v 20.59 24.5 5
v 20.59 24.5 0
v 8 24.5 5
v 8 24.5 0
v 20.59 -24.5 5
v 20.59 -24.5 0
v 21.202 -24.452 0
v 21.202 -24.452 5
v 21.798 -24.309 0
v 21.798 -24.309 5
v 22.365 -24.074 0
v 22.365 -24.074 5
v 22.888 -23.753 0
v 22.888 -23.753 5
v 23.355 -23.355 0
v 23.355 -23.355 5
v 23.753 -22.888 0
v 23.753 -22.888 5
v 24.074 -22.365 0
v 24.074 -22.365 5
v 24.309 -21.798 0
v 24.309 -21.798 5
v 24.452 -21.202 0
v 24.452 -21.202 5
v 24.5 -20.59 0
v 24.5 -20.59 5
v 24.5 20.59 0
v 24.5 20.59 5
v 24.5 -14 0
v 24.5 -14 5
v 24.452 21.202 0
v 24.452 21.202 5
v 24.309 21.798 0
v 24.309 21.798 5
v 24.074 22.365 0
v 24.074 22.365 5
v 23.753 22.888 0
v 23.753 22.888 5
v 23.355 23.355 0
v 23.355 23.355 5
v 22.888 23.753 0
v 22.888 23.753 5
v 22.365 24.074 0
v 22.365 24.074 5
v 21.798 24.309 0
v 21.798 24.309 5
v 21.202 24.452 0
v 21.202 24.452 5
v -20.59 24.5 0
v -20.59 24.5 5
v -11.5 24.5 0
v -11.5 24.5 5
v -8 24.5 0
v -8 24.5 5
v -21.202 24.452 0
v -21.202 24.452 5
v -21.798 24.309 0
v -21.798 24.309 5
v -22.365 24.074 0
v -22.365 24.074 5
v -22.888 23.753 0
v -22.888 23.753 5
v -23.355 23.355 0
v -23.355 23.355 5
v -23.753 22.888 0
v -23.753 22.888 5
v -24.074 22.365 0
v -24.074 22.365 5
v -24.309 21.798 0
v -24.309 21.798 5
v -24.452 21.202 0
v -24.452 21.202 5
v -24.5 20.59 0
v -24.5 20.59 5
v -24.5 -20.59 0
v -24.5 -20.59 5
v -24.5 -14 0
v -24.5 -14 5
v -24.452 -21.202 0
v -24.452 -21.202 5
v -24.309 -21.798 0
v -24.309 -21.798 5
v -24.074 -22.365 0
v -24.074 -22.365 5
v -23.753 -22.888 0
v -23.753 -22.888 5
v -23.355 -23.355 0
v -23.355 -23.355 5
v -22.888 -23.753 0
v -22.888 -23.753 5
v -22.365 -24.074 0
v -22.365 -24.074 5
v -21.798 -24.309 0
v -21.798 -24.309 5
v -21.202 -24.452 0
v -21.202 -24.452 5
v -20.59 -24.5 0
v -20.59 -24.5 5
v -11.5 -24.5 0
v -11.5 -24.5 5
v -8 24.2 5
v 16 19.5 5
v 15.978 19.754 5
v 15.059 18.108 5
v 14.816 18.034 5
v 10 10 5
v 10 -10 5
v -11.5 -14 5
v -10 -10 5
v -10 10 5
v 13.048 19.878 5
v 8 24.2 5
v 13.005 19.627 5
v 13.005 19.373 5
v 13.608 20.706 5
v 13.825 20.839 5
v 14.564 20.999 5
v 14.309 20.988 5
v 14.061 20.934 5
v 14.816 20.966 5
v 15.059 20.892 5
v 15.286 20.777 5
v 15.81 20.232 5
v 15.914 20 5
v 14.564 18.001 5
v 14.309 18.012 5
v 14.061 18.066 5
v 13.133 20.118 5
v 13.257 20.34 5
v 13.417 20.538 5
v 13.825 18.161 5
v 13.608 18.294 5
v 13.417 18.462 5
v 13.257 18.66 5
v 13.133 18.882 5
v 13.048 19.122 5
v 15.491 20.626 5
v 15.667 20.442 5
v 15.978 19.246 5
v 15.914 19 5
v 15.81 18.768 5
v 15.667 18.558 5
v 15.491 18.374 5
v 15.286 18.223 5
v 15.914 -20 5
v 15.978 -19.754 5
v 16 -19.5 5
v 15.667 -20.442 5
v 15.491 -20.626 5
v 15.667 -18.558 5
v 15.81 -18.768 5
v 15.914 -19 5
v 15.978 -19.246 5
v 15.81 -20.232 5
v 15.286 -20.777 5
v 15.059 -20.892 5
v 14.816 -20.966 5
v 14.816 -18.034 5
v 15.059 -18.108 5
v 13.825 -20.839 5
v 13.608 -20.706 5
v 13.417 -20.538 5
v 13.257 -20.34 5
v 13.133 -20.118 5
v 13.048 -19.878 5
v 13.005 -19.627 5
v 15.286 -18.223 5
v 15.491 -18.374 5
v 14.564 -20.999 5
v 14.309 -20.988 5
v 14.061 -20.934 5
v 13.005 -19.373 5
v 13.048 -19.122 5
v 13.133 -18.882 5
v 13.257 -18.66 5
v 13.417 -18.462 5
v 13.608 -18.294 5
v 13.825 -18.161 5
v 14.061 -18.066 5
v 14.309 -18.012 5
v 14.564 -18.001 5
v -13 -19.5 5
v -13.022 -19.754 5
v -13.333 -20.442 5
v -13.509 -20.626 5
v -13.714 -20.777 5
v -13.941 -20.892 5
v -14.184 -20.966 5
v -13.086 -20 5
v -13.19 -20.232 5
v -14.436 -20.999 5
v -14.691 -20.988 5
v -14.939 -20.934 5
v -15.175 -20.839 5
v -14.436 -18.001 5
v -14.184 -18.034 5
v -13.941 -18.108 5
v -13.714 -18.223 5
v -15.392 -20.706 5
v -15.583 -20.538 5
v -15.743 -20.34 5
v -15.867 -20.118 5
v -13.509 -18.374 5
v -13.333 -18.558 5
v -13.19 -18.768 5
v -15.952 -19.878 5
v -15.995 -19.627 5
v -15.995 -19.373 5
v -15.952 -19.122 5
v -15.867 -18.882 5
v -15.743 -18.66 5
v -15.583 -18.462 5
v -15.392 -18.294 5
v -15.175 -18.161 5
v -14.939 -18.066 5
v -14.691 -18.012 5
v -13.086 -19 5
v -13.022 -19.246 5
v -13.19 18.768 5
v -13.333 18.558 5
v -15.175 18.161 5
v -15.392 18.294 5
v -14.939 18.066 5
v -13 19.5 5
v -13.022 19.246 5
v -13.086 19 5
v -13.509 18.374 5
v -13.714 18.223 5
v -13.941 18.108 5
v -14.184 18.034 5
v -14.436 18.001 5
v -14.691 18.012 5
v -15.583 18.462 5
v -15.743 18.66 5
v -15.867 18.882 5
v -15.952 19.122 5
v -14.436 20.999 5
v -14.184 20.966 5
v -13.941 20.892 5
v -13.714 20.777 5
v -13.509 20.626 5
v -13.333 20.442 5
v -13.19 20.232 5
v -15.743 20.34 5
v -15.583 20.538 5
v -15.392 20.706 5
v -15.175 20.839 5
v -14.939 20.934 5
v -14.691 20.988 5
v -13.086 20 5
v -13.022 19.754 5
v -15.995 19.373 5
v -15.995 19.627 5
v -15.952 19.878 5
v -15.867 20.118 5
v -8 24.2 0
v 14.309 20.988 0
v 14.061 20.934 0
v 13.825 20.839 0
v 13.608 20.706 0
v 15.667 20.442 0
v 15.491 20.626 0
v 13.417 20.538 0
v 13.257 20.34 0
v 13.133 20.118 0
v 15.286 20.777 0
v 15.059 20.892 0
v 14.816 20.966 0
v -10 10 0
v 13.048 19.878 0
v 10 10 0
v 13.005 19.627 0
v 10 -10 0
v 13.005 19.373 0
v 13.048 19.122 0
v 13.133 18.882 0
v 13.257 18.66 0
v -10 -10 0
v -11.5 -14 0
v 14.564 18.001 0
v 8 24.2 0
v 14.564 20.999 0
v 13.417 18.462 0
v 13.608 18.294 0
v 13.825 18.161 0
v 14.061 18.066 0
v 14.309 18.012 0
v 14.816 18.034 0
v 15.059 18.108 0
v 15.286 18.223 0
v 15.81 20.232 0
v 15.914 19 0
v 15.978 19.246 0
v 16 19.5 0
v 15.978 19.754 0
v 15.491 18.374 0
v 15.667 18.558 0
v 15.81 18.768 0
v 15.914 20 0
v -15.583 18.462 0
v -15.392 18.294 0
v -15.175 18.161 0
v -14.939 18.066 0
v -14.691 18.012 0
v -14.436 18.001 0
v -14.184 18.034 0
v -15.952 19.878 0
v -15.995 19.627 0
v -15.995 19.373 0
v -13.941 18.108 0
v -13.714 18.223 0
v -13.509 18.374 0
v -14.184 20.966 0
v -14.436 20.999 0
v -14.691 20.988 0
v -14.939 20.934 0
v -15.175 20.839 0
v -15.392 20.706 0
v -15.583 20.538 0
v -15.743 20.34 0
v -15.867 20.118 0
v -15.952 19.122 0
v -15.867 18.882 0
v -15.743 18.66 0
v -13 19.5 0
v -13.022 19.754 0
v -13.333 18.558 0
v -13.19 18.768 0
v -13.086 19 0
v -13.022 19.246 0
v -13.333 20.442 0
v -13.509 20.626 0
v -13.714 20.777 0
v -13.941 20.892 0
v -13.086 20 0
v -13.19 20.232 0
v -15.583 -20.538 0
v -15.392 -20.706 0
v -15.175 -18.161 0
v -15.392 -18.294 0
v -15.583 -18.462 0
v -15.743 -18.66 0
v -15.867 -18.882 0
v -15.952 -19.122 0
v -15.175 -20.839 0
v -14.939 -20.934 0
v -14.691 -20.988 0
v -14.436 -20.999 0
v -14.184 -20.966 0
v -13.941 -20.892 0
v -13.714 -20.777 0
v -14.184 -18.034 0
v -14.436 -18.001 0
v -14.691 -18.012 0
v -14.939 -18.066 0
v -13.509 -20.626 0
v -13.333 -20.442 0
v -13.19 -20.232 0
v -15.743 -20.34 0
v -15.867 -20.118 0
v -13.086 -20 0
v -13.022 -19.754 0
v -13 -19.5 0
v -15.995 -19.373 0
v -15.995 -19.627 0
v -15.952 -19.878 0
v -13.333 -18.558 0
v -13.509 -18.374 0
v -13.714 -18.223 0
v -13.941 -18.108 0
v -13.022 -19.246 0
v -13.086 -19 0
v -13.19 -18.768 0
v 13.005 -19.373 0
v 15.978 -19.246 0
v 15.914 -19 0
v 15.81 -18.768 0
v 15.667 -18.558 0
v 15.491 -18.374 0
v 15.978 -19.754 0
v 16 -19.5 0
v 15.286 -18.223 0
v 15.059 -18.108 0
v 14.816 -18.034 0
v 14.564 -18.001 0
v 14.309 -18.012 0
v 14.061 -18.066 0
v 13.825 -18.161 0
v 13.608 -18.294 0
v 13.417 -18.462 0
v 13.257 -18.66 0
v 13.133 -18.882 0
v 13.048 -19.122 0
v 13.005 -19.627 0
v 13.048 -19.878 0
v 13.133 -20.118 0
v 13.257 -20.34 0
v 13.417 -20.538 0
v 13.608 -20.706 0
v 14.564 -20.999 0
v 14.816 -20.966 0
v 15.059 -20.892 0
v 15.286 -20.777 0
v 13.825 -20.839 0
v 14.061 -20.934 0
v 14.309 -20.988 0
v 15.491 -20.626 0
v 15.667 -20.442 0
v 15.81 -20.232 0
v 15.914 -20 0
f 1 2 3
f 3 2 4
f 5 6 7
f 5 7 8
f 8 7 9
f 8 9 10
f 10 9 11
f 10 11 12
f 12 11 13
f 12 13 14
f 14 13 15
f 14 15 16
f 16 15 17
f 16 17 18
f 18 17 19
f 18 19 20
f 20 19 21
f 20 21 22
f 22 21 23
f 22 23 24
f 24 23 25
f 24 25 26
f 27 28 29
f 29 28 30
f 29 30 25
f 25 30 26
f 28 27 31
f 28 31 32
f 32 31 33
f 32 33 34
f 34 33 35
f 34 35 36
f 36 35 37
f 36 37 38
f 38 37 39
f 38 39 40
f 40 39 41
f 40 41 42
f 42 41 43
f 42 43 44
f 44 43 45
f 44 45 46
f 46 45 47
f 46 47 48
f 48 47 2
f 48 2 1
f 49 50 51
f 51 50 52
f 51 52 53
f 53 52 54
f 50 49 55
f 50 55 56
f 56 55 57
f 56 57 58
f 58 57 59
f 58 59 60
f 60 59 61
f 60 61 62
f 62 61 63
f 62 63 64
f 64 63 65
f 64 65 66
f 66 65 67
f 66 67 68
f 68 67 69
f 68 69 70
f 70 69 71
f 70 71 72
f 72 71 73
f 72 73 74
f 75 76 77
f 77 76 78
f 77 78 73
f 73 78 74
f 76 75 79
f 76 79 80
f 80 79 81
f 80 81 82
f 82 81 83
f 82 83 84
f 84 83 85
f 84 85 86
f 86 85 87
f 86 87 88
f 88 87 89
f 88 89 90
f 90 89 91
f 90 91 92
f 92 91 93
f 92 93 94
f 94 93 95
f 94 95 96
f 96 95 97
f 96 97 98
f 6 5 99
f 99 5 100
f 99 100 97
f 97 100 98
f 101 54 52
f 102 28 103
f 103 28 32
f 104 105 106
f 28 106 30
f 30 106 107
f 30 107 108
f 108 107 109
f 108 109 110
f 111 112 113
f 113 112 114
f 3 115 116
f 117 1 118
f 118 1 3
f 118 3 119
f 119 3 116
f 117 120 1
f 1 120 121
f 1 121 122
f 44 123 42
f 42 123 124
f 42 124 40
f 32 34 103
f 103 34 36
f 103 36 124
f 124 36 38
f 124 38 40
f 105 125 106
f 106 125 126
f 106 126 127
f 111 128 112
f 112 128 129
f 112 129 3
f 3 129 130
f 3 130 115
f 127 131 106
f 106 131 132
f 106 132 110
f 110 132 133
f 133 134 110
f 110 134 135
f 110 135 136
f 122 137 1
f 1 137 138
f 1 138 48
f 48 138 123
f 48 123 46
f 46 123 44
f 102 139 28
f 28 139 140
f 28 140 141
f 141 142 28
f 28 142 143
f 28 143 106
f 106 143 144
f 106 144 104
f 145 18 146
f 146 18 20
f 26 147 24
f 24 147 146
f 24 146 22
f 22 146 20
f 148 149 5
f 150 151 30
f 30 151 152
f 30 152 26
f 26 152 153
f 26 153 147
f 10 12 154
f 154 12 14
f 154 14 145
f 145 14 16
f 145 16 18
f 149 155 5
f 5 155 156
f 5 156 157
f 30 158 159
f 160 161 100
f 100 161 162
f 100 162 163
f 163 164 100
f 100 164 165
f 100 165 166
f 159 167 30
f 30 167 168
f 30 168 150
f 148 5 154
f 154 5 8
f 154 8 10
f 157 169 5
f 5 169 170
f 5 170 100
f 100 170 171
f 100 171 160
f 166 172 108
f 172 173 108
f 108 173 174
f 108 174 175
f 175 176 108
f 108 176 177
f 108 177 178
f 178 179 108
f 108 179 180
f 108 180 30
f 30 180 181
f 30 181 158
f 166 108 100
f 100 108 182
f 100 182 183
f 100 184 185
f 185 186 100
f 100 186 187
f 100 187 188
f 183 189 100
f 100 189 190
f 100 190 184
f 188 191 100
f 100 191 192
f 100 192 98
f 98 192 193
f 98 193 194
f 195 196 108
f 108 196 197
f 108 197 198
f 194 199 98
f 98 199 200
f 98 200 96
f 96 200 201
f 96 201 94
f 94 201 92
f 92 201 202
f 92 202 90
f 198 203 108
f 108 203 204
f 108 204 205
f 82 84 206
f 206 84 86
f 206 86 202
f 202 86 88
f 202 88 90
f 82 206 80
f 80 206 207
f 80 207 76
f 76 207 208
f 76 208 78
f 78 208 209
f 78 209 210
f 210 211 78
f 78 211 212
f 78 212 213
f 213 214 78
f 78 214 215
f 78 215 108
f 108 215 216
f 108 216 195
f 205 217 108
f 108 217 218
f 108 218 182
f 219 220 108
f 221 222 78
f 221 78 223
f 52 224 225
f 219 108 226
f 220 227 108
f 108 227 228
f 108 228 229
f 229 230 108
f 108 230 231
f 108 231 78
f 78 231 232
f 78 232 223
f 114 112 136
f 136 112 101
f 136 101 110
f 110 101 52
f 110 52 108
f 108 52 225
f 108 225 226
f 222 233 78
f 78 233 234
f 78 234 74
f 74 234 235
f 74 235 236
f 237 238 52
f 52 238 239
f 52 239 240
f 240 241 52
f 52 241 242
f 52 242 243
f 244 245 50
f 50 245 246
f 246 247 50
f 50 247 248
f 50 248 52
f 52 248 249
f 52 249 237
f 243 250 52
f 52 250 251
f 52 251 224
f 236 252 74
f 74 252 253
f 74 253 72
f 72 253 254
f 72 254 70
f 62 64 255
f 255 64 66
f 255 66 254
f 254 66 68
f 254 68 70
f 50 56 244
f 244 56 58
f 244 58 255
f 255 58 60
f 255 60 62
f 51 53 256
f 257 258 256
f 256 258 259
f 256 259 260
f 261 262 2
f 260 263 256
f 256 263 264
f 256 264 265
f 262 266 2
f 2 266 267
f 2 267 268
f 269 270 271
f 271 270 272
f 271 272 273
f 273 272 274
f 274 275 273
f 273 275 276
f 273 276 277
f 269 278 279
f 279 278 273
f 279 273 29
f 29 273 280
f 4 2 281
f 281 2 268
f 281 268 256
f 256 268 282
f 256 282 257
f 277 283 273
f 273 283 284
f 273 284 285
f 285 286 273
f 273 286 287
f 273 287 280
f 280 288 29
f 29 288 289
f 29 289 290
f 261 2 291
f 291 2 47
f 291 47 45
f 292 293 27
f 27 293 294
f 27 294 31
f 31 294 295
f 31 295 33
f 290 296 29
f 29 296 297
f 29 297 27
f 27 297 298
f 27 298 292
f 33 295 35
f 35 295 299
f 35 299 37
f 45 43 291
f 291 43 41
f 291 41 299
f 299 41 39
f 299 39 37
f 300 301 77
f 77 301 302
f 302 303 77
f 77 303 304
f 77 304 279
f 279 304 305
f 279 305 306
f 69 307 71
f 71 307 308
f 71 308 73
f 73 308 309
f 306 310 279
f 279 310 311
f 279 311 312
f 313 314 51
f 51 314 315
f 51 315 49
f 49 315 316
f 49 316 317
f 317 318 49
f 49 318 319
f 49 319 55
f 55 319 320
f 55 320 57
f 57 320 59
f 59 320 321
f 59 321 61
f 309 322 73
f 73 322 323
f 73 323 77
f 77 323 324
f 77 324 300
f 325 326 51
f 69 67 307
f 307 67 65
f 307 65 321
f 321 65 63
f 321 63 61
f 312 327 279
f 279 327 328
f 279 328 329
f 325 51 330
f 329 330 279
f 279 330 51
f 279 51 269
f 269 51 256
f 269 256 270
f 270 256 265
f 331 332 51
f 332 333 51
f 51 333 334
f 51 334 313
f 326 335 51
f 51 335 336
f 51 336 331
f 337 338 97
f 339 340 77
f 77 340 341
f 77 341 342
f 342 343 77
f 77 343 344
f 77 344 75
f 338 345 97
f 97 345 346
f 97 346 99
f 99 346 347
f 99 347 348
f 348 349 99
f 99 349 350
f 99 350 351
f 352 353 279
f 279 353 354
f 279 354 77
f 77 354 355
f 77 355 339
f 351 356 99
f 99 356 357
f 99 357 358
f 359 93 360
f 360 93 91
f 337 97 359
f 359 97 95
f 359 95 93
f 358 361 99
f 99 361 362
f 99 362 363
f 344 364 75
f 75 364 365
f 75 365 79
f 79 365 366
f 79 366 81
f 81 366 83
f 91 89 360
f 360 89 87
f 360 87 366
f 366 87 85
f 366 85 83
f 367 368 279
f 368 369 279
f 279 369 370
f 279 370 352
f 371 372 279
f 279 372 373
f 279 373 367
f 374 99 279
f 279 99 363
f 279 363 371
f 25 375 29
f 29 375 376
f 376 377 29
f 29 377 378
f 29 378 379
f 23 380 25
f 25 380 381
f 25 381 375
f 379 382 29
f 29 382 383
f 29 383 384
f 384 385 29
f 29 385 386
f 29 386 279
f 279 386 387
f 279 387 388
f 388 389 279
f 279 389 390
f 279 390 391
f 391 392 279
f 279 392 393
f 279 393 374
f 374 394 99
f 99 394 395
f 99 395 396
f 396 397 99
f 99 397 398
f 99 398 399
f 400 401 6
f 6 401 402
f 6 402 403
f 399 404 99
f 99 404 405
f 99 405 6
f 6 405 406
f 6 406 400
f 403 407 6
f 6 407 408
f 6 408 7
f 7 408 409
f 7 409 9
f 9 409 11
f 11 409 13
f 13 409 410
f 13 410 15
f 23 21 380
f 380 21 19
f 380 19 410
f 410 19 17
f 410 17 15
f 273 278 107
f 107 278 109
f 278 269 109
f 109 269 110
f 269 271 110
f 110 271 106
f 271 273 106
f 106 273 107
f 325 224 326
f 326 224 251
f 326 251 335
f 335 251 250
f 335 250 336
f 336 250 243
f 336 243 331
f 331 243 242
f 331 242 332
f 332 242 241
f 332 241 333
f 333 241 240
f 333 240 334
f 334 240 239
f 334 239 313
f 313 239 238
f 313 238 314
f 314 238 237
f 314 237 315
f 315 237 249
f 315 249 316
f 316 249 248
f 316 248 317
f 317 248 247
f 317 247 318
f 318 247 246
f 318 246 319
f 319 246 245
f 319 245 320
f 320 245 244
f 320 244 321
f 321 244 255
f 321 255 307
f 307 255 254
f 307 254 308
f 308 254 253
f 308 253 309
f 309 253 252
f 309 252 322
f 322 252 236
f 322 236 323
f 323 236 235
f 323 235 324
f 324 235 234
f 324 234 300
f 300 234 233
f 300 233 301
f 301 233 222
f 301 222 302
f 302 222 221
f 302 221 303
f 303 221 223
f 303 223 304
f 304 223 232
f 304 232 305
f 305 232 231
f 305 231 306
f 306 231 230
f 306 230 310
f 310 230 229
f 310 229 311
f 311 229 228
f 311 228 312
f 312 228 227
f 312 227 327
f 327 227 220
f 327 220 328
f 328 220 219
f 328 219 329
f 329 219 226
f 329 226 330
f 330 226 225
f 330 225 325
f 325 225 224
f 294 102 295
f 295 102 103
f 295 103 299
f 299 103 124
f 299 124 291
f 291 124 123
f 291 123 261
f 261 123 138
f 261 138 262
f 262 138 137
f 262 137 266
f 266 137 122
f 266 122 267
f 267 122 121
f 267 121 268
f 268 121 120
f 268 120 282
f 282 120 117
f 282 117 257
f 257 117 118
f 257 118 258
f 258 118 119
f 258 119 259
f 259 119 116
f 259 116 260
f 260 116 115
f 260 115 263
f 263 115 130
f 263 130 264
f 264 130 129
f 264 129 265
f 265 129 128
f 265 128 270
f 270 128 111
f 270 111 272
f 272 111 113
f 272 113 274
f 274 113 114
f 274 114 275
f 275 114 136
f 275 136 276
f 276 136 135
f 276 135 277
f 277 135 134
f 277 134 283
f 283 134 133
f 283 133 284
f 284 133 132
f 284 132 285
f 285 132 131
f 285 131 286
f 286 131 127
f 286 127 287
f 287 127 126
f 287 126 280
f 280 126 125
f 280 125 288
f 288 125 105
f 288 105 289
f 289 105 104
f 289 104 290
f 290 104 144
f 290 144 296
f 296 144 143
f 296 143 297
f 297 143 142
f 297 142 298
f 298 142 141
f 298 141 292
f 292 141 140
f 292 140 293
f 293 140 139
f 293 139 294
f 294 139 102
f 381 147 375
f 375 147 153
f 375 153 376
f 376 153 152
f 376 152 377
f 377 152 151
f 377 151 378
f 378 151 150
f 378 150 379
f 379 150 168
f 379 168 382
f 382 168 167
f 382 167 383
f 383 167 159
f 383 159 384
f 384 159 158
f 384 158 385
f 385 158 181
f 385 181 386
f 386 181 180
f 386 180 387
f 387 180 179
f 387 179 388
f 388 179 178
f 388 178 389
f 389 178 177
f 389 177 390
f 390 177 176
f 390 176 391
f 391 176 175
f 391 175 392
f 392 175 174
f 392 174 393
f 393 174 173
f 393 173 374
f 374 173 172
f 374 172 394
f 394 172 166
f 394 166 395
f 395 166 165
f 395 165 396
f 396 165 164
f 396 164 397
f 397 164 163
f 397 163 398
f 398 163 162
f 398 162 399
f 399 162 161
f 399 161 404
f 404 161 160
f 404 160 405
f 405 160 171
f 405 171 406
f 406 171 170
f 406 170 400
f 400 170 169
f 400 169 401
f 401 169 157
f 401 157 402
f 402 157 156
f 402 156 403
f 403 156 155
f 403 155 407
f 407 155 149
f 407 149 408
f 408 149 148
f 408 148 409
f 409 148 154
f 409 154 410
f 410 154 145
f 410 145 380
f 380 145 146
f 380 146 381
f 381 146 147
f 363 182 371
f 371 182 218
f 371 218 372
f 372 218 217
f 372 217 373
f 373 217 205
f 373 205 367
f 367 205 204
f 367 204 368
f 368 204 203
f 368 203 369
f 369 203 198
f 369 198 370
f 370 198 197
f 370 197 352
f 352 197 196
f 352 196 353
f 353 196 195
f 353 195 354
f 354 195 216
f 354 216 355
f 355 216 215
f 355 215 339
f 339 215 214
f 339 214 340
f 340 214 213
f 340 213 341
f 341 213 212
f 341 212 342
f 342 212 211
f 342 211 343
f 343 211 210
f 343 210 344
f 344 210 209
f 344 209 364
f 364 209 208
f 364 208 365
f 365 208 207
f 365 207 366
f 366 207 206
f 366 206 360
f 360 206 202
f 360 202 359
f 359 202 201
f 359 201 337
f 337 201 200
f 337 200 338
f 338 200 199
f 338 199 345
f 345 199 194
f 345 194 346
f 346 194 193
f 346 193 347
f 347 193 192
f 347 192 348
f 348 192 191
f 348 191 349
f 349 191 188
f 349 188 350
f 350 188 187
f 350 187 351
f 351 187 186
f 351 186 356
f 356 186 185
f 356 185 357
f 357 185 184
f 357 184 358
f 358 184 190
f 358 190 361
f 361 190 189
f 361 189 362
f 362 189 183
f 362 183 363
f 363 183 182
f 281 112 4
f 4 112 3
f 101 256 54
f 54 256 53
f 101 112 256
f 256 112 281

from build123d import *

# Parameters (mm, degrees)
BOSS_EXTRUDE1_DEPTH = 5
SKETCH2_W           = 20
SKETCH2_H           = 20
CUT_EXTRUDE1_DEPTH  = 5
SKETCH5_R           = 1.5
CUT_EXTRUDE2_DEPTH  = 36.007142128
SKETCH6_W           = 16
SKETCH6_H           = 0.8
CUT_EXTRUDE3_DEPTH  = 36.007142128


with BuildPart() as part:
    # Sketch1 → Boss-Extrude1 (new body)
    with BuildSketch(Plane.XY):
        with BuildLine():
            Line((20.59, 24.5), (-20.59, 24.5))
            ThreePointArc((-20.59, 24.5), (-23.354787514, 23.354787514), (-24.5, 20.59))
            Line((-24.5, 20.59), (-24.5, -20.59))
            ThreePointArc((-24.5, -20.59), (-23.354787514, -23.354787514), (-20.59, -24.5))
            Line((-20.59, -24.5), (20.59, -24.5))
            ThreePointArc((20.59, -24.5), (23.354787514, -23.354787514), (24.5, -20.59))
            Line((24.5, -20.59), (24.5, 20.59))
            ThreePointArc((24.5, 20.59), (23.354787514, 23.354787514), (20.59, 24.5))
        make_face()
    extrude(amount=BOSS_EXTRUDE1_DEPTH)

    # Sketch2 → Cut-Extrude1 (cut)
    with BuildSketch(Plane.XY.offset(5)):
        Rectangle(SKETCH2_W, SKETCH2_H)
    extrude(amount=-CUT_EXTRUDE1_DEPTH, mode=Mode.SUBTRACT)

    # Sketch5 → Cut-Extrude2 (cut, through all)
    with BuildSketch(Plane.XY.offset(5)):
        with Locations((-14.5, 19.5)):
            Circle(SKETCH5_R)
        with Locations((14.5, 19.5)):
            Circle(SKETCH5_R)
        with Locations((-14.5, -19.5)):
            Circle(SKETCH5_R)
        with Locations((14.5, -19.5)):
            Circle(SKETCH5_R)
    extrude(amount=-CUT_EXTRUDE2_DEPTH, mode=Mode.SUBTRACT)

    # Sketch6 → Cut-Extrude3 (cut, through all)
    with BuildSketch(Plane(origin=(0, 0, 0), x_dir=(-1, 0, 0), z_dir=(0, 0, -1))):
        with Locations((0, 24.6)):
            Rectangle(SKETCH6_W, SKETCH6_H)
    extrude(amount=-CUT_EXTRUDE3_DEPTH, mode=Mode.SUBTRACT)


solid = part.part
